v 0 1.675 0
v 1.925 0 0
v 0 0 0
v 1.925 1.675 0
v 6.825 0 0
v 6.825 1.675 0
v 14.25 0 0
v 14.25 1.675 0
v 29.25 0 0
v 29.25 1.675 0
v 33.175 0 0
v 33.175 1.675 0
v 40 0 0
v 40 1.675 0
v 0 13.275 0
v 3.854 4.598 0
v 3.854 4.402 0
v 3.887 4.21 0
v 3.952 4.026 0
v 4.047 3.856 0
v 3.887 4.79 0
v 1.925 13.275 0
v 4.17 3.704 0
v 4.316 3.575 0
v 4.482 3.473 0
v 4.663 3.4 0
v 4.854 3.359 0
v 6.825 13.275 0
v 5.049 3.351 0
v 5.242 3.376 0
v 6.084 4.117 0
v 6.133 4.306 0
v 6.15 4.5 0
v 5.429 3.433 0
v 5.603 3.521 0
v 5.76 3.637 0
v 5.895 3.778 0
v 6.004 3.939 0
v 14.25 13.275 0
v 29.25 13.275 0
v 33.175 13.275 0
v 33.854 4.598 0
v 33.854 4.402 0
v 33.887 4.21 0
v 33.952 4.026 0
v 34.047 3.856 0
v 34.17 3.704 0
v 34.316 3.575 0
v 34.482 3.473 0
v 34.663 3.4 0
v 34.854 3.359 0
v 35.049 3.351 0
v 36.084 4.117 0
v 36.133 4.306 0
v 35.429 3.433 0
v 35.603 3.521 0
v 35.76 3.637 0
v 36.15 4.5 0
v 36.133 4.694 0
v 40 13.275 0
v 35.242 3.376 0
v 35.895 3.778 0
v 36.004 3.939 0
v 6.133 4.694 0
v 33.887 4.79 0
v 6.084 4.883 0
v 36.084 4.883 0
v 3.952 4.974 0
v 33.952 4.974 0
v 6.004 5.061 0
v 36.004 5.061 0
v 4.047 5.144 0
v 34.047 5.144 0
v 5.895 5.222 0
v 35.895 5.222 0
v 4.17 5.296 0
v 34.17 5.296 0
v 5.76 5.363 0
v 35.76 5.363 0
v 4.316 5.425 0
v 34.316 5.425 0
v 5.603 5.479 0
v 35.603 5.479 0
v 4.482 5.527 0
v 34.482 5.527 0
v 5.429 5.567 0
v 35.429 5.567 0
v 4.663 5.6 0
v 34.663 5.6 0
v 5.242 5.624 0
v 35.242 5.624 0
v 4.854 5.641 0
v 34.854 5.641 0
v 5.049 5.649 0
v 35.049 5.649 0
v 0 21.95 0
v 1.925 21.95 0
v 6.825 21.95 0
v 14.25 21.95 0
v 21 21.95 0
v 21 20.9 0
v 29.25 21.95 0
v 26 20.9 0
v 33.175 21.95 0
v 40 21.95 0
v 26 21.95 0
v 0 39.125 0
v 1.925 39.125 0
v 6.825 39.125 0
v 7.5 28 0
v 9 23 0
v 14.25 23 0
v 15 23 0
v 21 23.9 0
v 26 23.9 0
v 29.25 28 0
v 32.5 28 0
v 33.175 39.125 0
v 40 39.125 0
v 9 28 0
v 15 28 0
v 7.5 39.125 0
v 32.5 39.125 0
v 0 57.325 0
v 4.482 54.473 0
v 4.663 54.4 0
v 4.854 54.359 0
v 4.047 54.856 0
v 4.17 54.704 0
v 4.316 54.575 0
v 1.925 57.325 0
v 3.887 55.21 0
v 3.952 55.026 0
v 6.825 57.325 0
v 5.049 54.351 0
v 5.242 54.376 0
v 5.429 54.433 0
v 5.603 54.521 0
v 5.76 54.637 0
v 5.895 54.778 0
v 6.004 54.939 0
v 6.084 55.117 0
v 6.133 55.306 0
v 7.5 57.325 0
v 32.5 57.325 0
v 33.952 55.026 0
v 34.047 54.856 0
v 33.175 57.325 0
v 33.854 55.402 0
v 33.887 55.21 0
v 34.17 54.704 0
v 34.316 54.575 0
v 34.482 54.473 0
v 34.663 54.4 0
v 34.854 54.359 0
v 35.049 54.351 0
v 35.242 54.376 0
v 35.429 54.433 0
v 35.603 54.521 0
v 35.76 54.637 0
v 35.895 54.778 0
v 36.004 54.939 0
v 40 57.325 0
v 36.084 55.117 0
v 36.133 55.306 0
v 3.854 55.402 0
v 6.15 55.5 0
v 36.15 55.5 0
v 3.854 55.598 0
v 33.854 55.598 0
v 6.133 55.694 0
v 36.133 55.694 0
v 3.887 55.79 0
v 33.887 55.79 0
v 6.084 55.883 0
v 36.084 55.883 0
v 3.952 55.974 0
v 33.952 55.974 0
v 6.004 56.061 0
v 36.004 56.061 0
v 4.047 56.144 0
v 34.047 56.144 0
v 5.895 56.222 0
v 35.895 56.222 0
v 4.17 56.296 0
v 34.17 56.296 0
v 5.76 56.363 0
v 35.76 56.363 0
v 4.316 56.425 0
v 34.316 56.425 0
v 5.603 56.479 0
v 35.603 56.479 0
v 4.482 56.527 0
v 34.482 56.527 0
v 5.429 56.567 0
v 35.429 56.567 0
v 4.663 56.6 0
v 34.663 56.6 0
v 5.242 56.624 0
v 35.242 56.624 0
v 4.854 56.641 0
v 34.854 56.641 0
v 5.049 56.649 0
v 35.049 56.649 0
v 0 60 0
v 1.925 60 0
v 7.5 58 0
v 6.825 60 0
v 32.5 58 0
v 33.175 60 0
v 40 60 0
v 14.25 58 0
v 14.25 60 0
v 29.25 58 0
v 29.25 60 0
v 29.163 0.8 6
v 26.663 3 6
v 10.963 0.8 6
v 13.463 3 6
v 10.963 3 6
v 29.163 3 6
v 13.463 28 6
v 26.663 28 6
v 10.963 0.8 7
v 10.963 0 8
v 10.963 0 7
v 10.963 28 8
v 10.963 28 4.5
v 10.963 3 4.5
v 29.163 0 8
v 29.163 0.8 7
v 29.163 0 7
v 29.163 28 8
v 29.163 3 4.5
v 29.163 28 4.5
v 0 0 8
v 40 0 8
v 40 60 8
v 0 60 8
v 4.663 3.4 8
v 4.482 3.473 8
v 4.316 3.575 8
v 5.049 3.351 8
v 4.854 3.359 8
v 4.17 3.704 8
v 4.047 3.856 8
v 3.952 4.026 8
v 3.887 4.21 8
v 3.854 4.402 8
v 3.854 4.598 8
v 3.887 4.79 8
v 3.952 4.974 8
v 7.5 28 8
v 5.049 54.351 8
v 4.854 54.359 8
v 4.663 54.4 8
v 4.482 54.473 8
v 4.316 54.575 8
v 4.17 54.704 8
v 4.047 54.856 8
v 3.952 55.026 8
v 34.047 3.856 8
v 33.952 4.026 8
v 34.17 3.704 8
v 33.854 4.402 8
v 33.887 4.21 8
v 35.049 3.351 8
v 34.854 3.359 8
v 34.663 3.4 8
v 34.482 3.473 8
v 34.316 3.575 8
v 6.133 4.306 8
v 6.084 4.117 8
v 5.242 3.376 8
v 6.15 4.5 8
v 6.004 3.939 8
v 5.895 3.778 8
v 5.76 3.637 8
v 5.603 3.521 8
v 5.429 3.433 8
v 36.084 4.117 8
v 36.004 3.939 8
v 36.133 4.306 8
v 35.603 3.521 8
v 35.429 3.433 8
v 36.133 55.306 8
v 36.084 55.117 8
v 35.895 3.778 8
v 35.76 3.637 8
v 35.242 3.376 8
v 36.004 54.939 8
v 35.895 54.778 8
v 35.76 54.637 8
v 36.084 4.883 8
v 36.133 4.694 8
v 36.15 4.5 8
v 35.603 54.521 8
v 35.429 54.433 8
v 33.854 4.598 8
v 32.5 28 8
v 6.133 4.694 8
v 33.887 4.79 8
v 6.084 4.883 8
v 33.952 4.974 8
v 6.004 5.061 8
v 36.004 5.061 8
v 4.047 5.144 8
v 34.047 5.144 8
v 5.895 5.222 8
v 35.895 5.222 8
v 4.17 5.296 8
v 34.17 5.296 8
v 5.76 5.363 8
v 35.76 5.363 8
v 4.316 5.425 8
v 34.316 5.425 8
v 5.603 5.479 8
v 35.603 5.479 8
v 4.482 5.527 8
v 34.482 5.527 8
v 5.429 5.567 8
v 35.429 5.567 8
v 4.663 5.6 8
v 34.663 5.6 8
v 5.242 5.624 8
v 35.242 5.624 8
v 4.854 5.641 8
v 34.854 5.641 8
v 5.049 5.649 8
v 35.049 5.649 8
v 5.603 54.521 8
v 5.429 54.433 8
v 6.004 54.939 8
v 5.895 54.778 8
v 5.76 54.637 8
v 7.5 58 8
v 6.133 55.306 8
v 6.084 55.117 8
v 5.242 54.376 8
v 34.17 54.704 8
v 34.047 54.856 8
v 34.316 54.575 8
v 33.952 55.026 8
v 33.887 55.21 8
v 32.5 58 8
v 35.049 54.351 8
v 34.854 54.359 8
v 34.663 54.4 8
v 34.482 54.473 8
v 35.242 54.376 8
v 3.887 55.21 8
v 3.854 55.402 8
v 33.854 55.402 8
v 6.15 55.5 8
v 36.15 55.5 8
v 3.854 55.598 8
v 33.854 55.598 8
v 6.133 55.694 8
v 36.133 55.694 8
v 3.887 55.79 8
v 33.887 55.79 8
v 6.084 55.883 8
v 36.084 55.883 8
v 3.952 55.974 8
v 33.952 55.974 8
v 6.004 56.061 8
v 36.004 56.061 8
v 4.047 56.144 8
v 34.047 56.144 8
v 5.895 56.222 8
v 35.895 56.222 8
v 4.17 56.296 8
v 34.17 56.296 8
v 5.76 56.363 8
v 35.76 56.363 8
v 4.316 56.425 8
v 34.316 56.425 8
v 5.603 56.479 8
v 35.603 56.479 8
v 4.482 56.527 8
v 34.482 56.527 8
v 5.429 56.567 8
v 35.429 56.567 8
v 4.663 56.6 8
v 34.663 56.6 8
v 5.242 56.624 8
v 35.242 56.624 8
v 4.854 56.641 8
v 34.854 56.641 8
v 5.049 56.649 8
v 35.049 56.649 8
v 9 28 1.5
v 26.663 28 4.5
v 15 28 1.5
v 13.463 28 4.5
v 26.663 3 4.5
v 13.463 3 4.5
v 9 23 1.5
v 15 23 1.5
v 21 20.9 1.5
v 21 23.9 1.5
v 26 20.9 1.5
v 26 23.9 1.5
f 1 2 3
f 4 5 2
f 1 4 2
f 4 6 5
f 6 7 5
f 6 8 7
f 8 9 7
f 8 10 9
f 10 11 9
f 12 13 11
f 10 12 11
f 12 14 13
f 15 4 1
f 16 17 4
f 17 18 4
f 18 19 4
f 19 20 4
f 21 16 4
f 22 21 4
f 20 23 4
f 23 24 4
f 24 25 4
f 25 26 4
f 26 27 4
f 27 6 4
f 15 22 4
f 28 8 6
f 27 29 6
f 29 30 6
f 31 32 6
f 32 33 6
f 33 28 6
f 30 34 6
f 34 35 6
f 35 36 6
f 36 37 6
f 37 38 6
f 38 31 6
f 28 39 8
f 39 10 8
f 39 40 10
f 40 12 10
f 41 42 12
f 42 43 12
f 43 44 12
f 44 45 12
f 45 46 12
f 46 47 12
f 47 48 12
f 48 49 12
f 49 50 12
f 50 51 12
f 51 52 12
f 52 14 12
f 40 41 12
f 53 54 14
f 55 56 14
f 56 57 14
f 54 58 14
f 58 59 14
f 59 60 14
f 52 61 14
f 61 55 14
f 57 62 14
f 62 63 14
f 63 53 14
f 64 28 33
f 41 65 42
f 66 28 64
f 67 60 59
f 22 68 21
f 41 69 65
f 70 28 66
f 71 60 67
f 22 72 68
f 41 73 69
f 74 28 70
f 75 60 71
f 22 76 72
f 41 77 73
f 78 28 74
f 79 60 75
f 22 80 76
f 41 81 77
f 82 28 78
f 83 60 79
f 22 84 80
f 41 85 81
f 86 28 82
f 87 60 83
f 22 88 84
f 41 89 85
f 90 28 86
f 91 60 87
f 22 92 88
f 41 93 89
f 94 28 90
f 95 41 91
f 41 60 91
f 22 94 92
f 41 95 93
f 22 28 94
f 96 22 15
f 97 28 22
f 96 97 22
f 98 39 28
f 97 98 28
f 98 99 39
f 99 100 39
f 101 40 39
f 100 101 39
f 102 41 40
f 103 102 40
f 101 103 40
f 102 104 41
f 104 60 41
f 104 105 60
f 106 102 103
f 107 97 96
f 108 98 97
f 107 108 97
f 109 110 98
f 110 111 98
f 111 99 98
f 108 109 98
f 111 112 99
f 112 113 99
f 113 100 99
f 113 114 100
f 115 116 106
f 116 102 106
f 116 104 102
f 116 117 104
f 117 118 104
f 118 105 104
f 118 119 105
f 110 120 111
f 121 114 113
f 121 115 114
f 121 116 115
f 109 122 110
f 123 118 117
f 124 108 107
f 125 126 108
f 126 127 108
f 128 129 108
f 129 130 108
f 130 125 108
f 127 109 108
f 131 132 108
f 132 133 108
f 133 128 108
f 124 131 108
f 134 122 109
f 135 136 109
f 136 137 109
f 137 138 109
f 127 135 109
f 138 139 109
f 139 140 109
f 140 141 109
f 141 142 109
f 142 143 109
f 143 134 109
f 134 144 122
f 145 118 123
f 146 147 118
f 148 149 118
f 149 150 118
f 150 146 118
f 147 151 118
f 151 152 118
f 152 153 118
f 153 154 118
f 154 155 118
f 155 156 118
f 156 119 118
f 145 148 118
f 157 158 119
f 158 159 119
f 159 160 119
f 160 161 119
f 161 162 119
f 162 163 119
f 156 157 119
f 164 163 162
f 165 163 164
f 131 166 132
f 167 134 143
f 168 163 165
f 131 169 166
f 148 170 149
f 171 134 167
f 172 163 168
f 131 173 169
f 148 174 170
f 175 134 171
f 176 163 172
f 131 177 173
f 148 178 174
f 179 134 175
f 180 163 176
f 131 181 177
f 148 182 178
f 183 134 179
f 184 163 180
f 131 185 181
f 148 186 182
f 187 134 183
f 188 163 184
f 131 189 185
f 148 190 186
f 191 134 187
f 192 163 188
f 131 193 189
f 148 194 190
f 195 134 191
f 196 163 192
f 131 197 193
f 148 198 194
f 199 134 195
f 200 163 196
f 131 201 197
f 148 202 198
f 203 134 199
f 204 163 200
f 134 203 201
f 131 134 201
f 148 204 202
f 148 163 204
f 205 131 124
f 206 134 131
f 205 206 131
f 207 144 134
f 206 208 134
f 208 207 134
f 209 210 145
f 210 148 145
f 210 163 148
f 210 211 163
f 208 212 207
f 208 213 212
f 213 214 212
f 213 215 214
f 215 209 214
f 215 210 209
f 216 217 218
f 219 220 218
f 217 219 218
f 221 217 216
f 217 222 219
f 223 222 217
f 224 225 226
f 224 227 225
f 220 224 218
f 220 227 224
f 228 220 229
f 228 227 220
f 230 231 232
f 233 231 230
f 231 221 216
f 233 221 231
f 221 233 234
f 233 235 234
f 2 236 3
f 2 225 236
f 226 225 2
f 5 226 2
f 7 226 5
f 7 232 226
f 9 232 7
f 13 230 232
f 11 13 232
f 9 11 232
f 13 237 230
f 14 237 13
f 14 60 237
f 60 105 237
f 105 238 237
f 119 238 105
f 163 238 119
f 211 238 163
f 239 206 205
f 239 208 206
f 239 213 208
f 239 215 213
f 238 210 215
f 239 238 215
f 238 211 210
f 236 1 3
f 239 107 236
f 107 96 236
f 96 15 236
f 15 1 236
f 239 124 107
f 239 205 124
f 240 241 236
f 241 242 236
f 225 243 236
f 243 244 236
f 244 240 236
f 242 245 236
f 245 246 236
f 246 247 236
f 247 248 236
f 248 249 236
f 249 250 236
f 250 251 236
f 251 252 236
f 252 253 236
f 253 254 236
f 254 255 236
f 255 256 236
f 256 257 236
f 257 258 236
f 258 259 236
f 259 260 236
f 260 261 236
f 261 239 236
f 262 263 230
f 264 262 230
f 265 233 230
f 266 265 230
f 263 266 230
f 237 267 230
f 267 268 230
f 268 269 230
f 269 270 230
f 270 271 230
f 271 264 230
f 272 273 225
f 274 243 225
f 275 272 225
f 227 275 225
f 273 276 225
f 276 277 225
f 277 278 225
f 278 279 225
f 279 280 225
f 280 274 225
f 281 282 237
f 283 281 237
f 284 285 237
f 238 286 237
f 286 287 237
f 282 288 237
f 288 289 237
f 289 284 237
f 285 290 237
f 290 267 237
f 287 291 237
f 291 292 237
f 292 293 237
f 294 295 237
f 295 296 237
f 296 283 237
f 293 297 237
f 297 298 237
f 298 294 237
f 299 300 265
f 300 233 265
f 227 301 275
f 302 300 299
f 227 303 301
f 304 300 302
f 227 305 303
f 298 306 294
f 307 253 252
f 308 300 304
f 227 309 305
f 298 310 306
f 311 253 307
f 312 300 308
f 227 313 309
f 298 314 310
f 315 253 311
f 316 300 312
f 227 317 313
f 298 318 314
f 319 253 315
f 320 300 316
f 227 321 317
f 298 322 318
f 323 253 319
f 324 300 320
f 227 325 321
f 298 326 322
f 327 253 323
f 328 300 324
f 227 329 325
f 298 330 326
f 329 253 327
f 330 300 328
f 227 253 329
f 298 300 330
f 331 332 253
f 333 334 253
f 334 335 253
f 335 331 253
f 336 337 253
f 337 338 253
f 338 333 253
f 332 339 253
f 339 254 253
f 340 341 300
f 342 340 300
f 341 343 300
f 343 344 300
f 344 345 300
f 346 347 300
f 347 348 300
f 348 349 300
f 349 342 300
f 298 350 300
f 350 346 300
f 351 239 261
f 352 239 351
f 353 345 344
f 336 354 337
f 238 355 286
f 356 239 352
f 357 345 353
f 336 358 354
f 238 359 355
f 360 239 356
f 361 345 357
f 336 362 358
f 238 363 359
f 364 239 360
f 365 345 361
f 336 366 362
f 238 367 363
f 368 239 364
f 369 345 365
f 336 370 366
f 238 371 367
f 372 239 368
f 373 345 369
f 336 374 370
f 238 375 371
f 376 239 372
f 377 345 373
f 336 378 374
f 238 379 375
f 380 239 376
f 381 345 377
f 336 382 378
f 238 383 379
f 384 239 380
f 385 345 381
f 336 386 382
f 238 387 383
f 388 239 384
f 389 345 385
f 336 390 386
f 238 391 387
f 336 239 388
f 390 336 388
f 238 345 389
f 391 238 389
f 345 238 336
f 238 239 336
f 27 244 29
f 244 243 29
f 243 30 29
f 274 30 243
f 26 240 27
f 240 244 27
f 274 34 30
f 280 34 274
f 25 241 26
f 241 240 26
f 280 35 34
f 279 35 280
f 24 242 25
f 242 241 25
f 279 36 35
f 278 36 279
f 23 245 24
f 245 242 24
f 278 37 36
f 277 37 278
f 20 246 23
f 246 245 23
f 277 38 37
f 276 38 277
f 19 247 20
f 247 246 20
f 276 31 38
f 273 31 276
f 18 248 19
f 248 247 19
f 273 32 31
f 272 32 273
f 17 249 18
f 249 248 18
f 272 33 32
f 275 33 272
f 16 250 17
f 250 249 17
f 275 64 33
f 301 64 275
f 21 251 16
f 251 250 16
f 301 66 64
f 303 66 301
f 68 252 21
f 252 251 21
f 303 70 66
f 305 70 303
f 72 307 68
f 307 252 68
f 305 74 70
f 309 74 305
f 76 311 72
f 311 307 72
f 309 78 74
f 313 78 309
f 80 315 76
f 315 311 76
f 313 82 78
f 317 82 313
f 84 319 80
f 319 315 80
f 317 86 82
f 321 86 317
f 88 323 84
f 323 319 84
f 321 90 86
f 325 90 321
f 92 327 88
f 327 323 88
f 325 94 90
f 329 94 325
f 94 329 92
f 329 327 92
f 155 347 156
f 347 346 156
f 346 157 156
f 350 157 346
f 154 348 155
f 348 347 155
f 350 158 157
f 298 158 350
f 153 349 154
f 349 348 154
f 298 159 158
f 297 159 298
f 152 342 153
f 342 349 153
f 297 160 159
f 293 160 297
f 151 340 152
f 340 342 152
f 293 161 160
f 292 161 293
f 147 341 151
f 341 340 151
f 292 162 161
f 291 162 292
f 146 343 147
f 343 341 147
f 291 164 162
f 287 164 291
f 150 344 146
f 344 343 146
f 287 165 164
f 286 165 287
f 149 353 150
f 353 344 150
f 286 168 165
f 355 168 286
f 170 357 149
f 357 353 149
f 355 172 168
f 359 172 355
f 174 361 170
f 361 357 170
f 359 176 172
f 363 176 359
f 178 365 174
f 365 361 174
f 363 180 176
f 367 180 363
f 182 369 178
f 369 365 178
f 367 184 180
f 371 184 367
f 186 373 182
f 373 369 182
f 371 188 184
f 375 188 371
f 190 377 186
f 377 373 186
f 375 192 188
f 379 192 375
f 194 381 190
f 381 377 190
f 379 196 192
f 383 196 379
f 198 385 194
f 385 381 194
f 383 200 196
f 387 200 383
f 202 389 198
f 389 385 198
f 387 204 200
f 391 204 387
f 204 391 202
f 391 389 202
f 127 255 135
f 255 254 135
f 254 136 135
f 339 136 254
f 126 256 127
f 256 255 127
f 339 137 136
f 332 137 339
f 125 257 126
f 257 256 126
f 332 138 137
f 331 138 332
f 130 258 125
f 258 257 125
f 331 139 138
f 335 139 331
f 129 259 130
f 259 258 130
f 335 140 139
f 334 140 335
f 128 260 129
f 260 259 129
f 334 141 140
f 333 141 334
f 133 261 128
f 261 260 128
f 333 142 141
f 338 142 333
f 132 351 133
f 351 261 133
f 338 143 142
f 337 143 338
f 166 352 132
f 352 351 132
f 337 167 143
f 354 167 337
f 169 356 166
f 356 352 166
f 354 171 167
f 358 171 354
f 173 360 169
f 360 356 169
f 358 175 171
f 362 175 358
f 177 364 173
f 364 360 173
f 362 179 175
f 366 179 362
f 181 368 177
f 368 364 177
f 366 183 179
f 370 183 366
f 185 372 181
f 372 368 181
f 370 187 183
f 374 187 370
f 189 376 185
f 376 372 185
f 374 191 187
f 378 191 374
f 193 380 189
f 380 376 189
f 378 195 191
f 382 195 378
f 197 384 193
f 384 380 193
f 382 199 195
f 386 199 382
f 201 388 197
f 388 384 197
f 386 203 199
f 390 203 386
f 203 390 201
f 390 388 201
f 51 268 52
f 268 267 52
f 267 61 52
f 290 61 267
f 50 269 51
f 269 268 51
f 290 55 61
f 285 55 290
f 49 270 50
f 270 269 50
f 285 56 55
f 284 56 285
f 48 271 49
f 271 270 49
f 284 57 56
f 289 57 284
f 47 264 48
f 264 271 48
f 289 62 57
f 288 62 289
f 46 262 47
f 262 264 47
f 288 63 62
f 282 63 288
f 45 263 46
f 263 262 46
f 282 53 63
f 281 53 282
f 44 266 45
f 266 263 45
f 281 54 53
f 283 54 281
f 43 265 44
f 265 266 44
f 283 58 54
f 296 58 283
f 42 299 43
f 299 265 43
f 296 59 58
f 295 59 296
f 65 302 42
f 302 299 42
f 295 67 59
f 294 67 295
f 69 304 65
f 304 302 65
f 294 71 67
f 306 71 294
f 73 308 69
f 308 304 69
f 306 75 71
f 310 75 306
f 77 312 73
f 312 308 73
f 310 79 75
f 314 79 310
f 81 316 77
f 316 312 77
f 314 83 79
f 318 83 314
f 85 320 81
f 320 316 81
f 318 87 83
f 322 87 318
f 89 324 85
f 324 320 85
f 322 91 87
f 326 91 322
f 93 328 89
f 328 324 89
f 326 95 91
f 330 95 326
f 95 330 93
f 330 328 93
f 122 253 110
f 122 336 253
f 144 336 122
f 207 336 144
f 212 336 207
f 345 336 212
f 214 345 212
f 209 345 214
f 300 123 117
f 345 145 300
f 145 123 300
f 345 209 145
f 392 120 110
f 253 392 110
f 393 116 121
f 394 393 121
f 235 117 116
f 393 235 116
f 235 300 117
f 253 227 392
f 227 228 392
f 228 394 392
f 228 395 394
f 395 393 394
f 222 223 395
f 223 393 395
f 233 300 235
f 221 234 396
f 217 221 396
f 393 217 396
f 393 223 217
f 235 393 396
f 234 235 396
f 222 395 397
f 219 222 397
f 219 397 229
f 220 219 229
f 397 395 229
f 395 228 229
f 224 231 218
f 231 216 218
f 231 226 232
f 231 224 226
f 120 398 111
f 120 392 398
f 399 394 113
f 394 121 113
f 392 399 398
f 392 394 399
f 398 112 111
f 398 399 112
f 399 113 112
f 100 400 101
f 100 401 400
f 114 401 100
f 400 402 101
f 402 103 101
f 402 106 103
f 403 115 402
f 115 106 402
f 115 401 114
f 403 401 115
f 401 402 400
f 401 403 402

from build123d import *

# Parameters (mm, degrees)
SKETCH1_W           = 60
SKETCH1_H           = 40
BOSS_EXTRUDE1_DEPTH = 8
SKETCH3_R           = 1.15
CUT_EXTRUDE2_DEPTH  = 73.553428589
SKETCH7_W           = 25
SKETCH7_H           = 30
CUT_EXTRUDE6_DEPTH  = 73.553428589
SKETCH8_W           = 18.2
SKETCH8_H           = 45
CUT_EXTRUDE7_DEPTH  = 2
SKETCH9_W           = 2.5
SKETCH9_H           = 25
CUT_EXTRUDE8_DEPTH  = 1.5
SKETCH10_W          = 18.2
SKETCH10_H          = 0.8
BOSS_EXTRUDE2_DEPTH = 1
SKETCH11_W          = 5
SKETCH11_H          = 3
SKETCH11_W_2        = 6
SKETCH11_H_2        = 11
CUT_EXTRUDE9_DEPTH  = 1.5


with BuildPart() as part:
    # Sketch1 → Boss-Extrude1 (new body)
    with BuildSketch(Plane(origin=(0, 0, 0), x_dir=(0, 1, 0), z_dir=(0, 0, 1))):
        with Locations((30, -20)):
            Rectangle(SKETCH1_W, SKETCH1_H)
    extrude(amount=BOSS_EXTRUDE1_DEPTH)

    # Sketch3 → Cut-Extrude2 (cut, through all)
    with BuildSketch(Plane.XY.offset(8)):
        with Locations((5, 4.5)):
            Circle(SKETCH3_R)
        with Locations((35, 4.5)):
            Circle(SKETCH3_R)
        with Locations((5, 55.5)):
            Circle(SKETCH3_R)
        with Locations((35, 55.5)):
            Circle(SKETCH3_R)
    extrude(amount=-CUT_EXTRUDE2_DEPTH, mode=Mode.SUBTRACT)

    # Sketch7 → Cut-Extrude6 (cut, through all)
    with BuildSketch(Plane.XY.offset(8)):
        with Locations((20, 43)):
            Rectangle(SKETCH7_W, SKETCH7_H)
    extrude(amount=-CUT_EXTRUDE6_DEPTH, mode=Mode.SUBTRACT)

    # Sketch8 → Cut-Extrude7 (cut)
    with BuildSketch(Plane.XY.offset(8)):
        with Locations((20.062509857, 22.5)):
            Rectangle(SKETCH8_W, SKETCH8_H)
    extrude(amount=-CUT_EXTRUDE7_DEPTH, mode=Mode.SUBTRACT)

    # Sketch9 → Cut-Extrude8 (cut)
    with BuildSketch(Plane.XY.offset(6)):
        with Locations((12.212509857, 15.5)):
            Rectangle(SKETCH9_W, SKETCH9_H)
        with Locations((27.912509857, 15.5)):
            Rectangle(SKETCH9_W, SKETCH9_H)
    extrude(amount=-CUT_EXTRUDE8_DEPTH, mode=Mode.SUBTRACT)

    # Sketch10 → Boss-Extrude2 (add)
    with BuildSketch(Plane.XY.offset(6)):
        with Locations((20.062509857, 0.4)):
            Rectangle(SKETCH10_W, SKETCH10_H)
    extrude(amount=BOSS_EXTRUDE2_DEPTH)

    # Sketch11 → Cut-Extrude9 (cut)
    with BuildSketch(Plane(origin=(0, 0, 0), x_dir=(1, 0, 0), z_dir=(0, 0, -1))):
        with Locations((23.5, -22.4)):
            Rectangle(SKETCH11_W, SKETCH11_H)
        with Locations((12, -28.5)):
            Rectangle(SKETCH11_W_2, SKETCH11_H_2)
    extrude(amount=-CUT_EXTRUDE9_DEPTH, mode=Mode.SUBTRACT)


solid = part.part
